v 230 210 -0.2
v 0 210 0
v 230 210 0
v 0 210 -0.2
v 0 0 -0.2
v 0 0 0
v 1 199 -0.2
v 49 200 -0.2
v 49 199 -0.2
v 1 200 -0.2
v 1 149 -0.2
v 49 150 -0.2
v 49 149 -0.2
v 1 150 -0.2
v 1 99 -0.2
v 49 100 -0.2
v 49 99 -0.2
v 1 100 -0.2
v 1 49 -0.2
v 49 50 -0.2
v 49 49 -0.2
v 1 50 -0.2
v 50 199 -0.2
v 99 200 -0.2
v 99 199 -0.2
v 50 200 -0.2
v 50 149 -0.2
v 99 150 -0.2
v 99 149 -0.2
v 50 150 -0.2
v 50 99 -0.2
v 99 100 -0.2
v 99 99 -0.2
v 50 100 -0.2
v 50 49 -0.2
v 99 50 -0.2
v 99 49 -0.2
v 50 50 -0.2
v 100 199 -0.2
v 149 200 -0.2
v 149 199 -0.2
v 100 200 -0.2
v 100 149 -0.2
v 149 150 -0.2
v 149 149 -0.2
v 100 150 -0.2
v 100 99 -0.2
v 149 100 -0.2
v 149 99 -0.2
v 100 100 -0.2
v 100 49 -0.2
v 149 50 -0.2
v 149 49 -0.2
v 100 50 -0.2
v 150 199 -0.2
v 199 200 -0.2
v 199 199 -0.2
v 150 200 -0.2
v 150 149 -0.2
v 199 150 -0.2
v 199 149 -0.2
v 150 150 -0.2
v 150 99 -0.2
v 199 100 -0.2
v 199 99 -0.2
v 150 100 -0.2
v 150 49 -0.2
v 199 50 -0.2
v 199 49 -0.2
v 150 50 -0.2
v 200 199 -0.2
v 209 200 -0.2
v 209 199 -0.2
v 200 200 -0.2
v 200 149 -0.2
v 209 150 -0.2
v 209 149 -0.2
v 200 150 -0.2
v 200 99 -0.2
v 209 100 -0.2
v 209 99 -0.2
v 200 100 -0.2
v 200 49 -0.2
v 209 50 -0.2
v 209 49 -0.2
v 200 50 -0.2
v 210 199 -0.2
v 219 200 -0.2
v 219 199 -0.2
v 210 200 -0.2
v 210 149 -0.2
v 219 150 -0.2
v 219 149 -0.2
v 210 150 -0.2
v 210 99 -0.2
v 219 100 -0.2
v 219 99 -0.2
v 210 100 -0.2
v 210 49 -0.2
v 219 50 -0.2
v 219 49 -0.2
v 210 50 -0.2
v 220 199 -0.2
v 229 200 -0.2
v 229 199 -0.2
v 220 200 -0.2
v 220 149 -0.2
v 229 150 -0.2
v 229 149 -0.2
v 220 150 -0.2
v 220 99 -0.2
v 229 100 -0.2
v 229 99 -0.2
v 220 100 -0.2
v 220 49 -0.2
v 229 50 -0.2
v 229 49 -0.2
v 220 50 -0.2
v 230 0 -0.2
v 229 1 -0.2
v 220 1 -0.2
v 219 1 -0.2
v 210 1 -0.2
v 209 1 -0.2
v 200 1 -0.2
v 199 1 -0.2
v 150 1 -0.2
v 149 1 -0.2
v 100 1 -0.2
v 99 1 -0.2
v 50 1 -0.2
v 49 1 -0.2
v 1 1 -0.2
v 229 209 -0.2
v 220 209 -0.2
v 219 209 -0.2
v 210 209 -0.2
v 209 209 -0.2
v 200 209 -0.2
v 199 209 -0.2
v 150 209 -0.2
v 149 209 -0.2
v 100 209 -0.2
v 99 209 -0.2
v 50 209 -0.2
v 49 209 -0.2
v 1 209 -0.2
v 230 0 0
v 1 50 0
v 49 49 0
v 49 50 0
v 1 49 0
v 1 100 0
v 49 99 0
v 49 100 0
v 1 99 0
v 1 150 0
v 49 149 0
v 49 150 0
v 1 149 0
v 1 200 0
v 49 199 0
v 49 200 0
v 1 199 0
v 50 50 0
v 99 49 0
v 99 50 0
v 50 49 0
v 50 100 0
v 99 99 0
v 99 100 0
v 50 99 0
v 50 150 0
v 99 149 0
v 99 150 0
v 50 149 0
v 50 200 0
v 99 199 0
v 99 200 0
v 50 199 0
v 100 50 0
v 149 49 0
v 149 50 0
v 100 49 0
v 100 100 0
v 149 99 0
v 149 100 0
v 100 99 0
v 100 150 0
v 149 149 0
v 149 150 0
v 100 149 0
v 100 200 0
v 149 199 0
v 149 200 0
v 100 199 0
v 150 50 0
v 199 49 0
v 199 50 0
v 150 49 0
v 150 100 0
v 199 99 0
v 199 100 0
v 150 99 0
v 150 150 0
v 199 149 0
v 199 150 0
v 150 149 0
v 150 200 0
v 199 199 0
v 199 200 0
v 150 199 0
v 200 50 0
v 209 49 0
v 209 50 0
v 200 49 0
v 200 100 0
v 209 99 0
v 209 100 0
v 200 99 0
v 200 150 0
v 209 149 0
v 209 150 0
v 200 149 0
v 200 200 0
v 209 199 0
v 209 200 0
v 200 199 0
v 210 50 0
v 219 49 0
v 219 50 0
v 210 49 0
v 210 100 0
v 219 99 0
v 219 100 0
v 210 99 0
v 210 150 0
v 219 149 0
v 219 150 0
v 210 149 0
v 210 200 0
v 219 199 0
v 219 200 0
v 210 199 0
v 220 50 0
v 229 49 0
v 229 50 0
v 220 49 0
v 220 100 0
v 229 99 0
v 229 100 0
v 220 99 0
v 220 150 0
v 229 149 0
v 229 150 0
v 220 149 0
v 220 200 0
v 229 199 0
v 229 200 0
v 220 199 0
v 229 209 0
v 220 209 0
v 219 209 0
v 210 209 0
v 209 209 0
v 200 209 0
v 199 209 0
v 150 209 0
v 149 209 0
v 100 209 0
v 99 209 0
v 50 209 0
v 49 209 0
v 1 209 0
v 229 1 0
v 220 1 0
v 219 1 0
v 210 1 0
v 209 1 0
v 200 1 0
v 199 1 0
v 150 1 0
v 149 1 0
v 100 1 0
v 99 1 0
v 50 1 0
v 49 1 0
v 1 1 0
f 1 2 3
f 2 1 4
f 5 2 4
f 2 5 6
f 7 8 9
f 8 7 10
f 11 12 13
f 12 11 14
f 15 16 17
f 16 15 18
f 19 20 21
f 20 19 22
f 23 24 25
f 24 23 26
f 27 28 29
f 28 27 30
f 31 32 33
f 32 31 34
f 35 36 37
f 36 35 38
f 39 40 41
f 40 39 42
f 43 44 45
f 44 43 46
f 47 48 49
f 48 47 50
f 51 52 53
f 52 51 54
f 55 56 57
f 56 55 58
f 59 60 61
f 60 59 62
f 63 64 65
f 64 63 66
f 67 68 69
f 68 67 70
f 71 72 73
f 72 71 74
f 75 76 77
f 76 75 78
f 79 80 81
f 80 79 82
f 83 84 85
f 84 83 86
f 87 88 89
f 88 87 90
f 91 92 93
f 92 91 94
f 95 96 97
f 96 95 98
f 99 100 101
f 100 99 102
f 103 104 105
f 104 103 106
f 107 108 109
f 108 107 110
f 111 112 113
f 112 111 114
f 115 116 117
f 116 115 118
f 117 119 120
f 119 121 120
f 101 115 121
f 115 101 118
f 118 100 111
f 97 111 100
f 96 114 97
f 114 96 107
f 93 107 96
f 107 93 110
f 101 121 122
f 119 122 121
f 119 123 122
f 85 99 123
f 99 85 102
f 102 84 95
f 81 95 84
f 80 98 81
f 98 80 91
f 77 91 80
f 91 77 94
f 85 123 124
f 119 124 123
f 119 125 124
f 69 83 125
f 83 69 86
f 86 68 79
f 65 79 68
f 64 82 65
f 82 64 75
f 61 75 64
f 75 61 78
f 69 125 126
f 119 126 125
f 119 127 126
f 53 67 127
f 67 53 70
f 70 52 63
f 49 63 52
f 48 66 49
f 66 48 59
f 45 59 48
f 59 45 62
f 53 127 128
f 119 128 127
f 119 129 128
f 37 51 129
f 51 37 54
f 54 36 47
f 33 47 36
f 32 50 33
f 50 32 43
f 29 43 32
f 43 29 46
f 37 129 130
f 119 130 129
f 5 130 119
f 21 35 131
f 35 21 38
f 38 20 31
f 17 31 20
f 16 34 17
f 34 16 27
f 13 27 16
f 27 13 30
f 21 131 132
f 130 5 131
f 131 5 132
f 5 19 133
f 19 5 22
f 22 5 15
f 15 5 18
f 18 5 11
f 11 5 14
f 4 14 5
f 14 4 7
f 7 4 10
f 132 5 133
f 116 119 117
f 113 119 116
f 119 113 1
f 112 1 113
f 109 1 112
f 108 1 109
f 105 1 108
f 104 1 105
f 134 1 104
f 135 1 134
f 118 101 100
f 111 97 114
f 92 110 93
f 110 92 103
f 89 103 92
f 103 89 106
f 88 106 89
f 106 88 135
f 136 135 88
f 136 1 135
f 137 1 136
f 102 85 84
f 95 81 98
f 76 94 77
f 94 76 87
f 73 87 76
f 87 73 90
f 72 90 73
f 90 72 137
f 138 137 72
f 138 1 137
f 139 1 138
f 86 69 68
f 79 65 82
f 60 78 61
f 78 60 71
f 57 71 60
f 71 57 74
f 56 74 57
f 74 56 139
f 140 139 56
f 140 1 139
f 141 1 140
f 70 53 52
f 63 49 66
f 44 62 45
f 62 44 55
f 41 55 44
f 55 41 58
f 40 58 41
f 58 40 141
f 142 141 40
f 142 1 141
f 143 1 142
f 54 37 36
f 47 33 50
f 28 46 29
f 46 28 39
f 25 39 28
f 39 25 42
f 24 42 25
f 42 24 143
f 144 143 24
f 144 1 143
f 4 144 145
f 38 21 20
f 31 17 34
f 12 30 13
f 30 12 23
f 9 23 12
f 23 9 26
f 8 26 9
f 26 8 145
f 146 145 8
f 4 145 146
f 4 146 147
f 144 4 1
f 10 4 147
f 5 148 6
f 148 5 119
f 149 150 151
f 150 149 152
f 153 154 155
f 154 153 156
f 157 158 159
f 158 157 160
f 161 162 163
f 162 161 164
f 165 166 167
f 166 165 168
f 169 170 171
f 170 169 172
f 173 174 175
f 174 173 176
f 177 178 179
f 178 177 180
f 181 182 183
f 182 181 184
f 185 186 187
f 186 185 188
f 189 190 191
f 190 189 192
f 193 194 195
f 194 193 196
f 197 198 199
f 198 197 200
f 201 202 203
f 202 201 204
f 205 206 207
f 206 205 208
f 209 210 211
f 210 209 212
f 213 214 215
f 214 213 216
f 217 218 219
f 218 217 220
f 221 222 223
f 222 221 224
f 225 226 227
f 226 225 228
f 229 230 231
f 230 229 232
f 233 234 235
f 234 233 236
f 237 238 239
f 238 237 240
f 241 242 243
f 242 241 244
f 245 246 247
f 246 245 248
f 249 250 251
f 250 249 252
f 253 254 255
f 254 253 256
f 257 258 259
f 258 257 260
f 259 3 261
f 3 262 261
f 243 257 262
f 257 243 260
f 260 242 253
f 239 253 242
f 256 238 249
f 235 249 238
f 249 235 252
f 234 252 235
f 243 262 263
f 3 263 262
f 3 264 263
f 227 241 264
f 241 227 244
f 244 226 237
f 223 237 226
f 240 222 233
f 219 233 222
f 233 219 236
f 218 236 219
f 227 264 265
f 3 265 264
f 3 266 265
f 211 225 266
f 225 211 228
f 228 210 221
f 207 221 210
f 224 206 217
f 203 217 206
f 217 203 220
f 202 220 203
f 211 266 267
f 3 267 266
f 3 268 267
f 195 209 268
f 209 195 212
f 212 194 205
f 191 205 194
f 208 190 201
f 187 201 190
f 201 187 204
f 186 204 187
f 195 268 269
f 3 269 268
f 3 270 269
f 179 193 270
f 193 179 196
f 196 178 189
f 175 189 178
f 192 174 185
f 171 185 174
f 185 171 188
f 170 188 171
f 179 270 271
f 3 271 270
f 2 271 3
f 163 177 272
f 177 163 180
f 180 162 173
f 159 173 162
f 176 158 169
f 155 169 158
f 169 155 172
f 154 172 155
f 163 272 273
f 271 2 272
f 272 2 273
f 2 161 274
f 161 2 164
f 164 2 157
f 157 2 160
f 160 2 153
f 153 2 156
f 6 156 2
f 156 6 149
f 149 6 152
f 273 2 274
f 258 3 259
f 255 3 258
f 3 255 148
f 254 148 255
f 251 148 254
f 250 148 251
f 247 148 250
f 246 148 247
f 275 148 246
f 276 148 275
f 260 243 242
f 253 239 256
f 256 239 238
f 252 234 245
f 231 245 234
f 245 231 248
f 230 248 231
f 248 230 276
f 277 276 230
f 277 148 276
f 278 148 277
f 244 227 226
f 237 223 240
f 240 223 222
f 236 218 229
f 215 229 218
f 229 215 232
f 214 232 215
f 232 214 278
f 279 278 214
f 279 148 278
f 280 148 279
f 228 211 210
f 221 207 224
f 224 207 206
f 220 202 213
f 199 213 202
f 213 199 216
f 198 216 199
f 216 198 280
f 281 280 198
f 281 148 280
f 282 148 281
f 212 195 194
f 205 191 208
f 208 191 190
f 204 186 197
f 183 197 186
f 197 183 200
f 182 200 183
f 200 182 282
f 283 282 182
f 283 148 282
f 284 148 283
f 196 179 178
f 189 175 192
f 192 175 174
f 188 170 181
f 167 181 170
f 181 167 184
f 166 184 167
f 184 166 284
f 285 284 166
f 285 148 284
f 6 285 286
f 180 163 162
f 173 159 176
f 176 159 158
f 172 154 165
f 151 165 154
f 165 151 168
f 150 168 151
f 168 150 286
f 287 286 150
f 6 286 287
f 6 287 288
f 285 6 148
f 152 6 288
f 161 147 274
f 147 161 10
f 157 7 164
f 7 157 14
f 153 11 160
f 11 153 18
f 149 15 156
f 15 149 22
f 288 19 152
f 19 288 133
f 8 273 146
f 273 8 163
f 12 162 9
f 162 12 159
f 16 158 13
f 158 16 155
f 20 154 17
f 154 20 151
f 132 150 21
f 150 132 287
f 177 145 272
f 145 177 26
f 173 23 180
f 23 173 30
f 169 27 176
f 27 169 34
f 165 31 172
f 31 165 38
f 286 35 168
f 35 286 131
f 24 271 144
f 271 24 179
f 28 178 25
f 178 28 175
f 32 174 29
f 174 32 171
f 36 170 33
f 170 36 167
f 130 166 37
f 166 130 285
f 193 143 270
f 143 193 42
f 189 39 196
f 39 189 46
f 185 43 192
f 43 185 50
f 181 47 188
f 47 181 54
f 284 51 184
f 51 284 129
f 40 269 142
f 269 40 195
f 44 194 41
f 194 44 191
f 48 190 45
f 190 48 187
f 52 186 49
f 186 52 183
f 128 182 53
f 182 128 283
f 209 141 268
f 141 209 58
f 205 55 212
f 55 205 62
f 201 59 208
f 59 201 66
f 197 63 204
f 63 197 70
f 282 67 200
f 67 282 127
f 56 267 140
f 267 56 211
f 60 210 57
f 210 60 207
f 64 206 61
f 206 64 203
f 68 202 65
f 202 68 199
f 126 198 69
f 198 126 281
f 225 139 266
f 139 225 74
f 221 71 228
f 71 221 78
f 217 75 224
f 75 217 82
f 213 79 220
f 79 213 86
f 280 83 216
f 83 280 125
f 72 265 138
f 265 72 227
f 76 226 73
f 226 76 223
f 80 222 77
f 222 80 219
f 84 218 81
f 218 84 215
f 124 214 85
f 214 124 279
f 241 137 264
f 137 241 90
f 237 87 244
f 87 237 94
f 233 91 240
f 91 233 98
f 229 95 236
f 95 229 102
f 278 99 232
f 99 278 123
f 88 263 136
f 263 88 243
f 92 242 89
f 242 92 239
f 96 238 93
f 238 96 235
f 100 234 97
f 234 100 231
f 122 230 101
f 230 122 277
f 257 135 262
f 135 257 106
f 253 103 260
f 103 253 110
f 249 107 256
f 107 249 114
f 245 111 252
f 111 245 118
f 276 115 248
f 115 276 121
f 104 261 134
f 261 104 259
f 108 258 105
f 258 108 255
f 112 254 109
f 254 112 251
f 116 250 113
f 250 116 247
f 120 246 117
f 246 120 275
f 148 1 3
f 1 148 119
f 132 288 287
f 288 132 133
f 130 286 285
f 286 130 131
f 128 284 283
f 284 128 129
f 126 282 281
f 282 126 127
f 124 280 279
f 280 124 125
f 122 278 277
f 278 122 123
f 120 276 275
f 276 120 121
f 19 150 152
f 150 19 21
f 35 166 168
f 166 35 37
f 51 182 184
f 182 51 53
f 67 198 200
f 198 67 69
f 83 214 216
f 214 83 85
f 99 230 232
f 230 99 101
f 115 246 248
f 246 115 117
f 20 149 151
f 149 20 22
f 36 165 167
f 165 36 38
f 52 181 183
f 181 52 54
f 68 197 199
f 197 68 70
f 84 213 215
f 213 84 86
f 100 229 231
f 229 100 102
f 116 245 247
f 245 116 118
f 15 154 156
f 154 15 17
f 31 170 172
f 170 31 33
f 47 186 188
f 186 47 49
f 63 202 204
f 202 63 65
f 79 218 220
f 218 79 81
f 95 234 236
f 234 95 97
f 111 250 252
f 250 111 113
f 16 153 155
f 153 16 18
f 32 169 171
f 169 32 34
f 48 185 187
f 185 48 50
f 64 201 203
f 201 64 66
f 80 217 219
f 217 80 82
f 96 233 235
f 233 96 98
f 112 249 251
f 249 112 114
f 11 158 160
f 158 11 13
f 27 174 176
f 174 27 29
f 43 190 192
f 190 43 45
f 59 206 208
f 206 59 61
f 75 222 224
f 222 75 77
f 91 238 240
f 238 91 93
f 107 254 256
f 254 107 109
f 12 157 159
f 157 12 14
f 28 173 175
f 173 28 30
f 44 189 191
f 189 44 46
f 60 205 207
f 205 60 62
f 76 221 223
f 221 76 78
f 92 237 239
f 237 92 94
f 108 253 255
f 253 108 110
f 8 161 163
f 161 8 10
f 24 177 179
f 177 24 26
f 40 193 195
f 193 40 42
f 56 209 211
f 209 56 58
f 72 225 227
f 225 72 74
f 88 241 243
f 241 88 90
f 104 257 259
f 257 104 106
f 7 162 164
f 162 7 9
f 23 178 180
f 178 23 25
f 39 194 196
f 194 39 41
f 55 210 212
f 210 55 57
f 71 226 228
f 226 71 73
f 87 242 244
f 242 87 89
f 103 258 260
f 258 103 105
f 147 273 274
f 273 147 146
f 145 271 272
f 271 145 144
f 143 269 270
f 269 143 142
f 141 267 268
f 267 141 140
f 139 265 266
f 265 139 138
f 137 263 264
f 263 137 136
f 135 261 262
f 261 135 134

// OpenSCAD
bed_size = [230,210];
w = 1;//0.5;
h = 0.2;

for (x = [0:10:bed_size[0]]) {
    if (x%50 == 0 || x > 200) 
    translate([max(0, x-w), 0, 0])
    rotate([-90,0,0])
    cube([w, h, bed_size[1]]);
}
for (y = [0:10:bed_size[1]]) {
    if (y%50 == 0 || y > 200) 
    translate([0, max(0, y-w), 0])
    rotate([0,90,0])
    cube([h, w, bed_size[0]]);
}
